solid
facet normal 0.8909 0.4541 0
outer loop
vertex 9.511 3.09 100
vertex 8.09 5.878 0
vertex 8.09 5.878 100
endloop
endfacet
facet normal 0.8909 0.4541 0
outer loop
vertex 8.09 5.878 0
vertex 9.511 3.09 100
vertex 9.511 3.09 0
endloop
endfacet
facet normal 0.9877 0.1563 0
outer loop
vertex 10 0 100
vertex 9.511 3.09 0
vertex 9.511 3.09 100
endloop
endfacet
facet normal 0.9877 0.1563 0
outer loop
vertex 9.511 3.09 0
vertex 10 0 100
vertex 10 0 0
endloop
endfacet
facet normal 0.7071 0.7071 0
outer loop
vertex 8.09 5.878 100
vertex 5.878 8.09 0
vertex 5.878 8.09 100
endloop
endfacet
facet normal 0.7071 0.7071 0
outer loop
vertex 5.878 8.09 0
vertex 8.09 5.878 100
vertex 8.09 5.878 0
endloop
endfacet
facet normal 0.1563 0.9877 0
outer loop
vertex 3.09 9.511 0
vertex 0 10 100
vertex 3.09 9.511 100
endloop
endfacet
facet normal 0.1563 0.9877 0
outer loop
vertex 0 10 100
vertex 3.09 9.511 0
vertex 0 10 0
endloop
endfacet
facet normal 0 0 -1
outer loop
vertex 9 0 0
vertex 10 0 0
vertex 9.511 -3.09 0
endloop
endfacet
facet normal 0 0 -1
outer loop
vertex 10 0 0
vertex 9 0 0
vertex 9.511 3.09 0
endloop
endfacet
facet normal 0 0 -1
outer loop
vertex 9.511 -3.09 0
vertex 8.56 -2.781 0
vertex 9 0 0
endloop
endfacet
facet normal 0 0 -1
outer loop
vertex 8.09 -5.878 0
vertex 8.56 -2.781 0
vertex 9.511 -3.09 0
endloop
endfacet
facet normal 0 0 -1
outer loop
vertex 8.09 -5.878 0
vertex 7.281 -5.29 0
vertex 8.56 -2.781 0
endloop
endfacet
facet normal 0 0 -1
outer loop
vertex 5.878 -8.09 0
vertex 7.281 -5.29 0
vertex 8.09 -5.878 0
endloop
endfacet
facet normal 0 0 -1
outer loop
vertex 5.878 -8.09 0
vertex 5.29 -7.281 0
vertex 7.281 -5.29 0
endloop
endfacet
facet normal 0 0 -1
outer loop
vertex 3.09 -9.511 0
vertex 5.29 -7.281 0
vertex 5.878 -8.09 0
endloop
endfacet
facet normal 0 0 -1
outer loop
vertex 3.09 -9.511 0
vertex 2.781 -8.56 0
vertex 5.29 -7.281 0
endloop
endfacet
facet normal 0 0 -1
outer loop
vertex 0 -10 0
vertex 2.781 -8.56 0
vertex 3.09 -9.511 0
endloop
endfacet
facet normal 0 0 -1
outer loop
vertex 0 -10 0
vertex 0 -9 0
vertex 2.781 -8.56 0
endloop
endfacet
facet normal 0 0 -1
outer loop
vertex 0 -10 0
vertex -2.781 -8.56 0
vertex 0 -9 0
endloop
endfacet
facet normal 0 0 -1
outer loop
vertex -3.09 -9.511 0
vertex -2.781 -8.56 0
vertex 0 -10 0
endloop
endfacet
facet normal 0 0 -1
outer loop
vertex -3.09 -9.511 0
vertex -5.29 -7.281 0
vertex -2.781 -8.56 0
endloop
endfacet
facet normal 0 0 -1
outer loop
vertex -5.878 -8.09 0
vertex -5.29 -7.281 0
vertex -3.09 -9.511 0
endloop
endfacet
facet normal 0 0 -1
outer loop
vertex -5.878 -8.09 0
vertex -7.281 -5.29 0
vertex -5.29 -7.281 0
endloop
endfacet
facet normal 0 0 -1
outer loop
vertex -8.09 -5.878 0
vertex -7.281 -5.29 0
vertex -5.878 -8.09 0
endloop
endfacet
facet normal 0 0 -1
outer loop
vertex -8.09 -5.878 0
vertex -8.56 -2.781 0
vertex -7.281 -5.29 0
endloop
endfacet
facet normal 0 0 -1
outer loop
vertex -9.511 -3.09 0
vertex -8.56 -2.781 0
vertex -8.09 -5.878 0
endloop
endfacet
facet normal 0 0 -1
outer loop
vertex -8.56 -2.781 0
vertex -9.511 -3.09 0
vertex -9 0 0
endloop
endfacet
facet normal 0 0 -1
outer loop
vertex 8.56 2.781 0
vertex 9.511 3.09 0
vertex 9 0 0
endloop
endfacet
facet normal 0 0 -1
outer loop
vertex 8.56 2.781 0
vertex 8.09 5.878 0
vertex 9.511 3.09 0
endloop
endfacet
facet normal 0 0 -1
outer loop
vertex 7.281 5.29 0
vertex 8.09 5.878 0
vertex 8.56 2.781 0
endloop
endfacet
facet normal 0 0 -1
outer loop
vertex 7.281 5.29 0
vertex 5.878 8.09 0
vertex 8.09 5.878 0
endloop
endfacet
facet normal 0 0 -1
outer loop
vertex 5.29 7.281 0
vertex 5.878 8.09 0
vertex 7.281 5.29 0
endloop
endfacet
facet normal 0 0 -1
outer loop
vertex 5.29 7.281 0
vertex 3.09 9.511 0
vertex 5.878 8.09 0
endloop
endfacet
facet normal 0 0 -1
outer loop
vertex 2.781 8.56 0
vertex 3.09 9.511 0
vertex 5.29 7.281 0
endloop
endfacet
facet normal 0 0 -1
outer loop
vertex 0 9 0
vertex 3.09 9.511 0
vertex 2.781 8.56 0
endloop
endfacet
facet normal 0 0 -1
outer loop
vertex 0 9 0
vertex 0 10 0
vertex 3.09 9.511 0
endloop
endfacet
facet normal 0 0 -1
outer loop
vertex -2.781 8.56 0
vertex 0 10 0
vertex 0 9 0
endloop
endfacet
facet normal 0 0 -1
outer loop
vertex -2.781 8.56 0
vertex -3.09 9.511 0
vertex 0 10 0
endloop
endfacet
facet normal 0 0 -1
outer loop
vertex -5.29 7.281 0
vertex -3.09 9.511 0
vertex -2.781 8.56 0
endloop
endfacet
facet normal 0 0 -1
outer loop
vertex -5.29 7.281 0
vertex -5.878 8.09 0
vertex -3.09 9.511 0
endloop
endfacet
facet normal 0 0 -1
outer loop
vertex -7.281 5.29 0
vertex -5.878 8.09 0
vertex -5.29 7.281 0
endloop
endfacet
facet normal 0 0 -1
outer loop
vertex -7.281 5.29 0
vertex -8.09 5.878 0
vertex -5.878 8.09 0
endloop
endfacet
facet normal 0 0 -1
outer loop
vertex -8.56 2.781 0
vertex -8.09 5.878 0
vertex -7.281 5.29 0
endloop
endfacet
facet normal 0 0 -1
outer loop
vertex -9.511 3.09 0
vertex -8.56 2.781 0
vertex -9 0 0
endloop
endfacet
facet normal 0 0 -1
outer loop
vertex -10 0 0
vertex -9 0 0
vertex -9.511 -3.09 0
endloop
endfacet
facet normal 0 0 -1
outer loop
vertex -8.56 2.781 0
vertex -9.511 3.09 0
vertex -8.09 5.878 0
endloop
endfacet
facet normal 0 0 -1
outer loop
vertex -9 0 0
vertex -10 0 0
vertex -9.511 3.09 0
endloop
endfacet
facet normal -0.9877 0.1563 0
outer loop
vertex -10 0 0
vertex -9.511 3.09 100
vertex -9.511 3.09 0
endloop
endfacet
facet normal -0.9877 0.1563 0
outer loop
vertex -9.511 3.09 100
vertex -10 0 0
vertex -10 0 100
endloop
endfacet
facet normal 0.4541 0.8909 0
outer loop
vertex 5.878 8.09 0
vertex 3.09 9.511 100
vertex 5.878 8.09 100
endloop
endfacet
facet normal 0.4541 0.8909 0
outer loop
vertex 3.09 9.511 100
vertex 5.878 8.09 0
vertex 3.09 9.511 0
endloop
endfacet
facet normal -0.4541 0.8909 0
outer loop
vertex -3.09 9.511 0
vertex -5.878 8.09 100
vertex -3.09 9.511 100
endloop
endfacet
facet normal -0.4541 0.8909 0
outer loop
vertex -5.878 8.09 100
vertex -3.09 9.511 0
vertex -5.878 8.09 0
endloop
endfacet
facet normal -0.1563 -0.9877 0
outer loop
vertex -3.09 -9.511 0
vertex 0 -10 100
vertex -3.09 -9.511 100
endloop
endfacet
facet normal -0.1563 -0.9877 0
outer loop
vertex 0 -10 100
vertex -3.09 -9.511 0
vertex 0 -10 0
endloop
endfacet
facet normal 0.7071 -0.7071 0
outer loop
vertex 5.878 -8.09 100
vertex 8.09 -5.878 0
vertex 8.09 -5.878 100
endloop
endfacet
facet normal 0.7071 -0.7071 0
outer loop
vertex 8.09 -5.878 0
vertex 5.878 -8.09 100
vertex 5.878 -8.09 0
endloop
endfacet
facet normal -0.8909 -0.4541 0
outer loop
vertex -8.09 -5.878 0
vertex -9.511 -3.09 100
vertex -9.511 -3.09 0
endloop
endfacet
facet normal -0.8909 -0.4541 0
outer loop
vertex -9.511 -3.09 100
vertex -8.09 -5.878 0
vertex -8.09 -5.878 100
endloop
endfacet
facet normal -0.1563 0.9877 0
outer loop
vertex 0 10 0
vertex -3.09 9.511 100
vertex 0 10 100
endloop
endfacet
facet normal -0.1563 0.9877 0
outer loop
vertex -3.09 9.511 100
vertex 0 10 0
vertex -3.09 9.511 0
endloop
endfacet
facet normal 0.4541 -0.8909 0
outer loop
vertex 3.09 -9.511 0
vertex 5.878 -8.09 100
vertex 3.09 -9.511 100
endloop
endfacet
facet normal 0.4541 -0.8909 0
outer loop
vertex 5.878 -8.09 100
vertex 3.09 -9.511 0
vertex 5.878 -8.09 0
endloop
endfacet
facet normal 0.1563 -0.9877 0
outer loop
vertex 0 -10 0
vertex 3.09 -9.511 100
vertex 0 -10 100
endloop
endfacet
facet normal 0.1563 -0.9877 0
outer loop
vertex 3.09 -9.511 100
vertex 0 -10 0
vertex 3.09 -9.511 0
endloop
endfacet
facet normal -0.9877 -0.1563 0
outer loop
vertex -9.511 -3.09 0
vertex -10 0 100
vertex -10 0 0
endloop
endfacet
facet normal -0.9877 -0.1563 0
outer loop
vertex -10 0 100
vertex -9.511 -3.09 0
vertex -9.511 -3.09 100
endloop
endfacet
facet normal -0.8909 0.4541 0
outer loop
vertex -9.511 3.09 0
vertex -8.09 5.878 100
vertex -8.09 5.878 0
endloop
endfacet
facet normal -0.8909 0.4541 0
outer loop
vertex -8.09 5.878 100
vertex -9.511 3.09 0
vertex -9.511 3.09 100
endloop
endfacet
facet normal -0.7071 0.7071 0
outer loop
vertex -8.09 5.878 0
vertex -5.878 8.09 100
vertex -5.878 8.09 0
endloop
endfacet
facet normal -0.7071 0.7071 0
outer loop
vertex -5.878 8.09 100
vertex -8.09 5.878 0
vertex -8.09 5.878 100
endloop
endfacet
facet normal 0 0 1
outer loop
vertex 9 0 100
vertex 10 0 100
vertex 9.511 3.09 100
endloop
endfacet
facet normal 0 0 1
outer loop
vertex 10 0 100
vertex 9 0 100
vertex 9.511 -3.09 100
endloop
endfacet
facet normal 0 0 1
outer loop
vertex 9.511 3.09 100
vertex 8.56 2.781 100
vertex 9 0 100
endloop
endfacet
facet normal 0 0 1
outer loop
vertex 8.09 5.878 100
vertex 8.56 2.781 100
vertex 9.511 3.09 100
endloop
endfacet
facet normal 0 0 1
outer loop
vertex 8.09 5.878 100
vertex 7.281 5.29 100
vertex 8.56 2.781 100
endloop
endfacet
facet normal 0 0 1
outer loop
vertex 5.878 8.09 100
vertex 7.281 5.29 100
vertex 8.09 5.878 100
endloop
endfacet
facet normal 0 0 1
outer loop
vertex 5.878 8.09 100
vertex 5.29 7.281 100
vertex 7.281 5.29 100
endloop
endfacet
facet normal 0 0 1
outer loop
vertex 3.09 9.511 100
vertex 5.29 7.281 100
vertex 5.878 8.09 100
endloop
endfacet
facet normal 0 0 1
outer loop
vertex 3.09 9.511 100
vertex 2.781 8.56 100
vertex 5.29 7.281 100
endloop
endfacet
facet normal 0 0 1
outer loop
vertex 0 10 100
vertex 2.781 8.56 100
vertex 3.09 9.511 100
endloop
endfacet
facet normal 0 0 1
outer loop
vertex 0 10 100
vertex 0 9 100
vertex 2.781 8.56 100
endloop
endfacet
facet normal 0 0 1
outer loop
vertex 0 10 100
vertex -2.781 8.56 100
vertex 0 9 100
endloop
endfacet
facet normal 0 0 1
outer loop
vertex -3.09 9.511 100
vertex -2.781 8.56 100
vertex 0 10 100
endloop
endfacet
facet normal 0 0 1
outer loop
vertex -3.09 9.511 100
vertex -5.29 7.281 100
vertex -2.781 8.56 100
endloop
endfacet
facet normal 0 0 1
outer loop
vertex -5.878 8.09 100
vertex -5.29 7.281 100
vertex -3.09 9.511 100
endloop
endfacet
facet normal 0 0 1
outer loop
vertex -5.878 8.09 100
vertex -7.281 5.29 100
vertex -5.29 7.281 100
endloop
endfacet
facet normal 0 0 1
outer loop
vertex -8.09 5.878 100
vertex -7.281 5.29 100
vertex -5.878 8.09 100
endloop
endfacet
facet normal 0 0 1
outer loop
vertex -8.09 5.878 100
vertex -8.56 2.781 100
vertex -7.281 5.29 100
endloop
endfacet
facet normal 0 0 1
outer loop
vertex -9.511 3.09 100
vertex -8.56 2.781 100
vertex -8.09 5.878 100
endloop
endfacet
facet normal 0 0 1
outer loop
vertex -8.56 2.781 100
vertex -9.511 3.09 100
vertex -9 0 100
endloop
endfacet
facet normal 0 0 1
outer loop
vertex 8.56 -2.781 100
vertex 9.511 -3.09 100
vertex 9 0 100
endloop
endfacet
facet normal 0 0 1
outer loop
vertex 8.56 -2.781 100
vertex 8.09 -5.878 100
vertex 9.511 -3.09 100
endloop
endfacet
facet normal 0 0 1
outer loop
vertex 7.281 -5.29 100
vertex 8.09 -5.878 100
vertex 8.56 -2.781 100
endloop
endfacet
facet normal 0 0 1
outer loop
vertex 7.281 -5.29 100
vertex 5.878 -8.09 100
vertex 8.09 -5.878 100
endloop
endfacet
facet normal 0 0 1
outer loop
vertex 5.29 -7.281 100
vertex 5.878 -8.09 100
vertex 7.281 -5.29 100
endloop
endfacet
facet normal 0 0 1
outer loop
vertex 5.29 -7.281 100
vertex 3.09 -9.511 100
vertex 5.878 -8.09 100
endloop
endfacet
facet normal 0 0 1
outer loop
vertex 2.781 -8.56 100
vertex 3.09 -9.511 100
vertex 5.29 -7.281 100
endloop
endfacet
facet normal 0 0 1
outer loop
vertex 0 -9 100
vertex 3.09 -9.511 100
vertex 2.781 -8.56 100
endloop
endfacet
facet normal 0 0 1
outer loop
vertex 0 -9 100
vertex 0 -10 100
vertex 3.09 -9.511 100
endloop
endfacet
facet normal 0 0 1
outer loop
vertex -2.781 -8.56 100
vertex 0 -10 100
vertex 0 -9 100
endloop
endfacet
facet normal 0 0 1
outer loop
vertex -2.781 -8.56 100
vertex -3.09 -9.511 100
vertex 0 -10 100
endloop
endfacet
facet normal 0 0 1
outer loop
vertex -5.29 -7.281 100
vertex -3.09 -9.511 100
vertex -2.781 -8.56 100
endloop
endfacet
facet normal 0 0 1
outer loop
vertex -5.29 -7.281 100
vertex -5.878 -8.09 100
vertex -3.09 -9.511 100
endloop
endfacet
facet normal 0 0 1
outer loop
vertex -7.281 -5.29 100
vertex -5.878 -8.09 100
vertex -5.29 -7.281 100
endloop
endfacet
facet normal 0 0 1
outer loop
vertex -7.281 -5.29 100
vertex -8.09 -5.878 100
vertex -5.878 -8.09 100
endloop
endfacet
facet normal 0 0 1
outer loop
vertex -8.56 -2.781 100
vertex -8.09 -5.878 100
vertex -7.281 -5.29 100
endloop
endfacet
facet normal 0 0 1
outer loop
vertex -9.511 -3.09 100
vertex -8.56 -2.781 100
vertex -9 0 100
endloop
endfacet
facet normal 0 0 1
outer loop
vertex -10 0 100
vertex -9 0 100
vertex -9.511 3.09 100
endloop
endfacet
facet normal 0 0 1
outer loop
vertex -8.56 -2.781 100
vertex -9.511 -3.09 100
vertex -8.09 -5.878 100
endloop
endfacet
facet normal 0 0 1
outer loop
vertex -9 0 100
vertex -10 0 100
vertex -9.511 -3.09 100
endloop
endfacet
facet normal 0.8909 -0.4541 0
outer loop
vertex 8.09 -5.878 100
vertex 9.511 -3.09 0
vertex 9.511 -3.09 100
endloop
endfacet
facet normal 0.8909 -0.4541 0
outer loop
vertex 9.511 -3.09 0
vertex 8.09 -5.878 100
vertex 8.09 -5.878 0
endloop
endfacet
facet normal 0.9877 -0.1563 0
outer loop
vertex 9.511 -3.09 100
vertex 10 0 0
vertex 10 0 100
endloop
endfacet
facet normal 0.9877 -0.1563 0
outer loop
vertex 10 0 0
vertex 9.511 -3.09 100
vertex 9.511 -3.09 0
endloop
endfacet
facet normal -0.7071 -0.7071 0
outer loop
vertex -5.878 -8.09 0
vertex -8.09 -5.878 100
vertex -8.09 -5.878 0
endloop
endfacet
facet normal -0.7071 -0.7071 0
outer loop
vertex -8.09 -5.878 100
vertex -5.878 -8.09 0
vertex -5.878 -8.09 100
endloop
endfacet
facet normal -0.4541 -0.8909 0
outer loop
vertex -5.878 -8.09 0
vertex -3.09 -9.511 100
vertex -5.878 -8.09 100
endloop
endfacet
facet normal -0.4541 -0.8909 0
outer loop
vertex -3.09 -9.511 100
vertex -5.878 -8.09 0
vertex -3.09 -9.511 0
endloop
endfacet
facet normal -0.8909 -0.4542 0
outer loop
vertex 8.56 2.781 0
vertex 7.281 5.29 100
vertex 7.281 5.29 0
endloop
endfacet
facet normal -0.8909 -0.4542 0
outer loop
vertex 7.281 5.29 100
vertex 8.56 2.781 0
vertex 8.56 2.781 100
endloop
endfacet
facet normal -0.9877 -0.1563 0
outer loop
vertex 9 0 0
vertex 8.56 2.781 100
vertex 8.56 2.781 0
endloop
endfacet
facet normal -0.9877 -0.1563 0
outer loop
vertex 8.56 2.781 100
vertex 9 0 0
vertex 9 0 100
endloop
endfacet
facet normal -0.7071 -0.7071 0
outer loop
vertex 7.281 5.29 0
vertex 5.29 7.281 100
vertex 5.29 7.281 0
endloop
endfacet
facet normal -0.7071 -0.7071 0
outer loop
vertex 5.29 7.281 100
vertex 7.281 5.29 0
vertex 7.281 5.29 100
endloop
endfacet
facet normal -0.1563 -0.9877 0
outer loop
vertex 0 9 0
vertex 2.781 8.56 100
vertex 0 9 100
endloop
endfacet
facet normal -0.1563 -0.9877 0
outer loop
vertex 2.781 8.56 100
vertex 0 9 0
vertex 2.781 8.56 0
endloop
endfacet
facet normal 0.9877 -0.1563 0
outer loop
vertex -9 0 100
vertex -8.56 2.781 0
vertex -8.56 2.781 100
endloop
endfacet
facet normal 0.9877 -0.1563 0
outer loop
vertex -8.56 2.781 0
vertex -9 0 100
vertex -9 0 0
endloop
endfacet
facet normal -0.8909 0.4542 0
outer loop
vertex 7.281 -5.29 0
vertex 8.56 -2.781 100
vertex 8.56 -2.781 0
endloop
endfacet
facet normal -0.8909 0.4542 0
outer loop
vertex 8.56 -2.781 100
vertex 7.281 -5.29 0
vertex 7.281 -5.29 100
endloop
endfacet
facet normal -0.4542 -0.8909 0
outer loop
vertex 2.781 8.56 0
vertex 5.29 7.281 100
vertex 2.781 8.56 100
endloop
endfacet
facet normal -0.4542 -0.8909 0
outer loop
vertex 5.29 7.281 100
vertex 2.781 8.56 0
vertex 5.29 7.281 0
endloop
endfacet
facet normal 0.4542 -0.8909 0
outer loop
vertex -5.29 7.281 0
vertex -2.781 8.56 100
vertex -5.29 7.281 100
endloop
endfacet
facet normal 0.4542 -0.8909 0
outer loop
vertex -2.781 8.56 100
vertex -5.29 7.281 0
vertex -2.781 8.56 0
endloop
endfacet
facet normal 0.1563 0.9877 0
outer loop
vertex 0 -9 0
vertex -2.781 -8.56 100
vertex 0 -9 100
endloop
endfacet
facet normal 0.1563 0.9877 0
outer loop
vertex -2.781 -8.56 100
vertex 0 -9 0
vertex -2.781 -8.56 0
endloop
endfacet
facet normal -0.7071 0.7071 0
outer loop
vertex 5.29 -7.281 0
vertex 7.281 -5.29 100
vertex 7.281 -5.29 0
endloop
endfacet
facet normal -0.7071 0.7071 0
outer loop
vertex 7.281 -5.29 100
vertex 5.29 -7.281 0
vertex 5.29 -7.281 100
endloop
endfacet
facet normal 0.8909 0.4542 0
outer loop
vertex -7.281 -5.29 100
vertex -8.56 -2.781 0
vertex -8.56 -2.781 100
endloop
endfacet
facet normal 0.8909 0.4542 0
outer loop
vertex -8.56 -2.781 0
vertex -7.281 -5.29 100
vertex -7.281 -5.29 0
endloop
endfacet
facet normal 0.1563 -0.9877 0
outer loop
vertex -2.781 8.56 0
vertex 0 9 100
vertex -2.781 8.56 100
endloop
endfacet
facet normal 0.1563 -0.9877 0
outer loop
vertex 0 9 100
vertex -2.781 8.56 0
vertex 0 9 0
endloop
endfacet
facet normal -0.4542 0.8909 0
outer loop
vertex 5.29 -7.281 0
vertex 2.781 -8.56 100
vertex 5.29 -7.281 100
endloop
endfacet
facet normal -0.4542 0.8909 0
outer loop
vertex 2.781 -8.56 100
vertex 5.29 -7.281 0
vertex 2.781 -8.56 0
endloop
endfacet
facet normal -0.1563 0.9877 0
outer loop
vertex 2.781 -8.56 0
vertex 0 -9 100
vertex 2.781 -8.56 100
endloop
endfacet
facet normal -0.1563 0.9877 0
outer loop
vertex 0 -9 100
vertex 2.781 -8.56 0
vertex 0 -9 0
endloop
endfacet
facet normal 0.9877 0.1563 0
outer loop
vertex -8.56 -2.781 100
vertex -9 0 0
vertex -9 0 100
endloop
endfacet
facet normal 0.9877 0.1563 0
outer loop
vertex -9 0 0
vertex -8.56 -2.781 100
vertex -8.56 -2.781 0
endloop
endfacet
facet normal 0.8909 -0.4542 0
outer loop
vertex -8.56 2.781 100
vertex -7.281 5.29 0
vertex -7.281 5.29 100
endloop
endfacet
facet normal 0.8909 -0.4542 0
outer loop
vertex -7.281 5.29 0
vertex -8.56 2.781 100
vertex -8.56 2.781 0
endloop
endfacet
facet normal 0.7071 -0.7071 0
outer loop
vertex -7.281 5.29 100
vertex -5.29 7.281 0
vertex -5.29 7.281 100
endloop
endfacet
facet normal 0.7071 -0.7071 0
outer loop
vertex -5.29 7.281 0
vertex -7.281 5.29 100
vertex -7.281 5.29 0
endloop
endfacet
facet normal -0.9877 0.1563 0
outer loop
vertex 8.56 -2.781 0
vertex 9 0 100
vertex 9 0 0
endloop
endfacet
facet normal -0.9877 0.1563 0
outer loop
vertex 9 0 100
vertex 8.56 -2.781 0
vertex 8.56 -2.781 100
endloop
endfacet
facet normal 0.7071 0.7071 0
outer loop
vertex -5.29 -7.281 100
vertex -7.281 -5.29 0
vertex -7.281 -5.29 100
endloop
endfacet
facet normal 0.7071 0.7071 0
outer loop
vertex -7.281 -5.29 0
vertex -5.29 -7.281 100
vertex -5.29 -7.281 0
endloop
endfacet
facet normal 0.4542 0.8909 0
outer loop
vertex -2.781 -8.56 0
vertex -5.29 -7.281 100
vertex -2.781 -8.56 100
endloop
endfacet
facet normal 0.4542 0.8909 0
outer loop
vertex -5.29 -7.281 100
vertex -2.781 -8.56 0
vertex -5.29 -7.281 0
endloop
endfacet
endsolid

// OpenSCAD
$fn=20;
difference()
{
    cylinder(d=20, h=100);
    translate([0, 0, -1]) cylinder(d=18, h=110);
    
}
